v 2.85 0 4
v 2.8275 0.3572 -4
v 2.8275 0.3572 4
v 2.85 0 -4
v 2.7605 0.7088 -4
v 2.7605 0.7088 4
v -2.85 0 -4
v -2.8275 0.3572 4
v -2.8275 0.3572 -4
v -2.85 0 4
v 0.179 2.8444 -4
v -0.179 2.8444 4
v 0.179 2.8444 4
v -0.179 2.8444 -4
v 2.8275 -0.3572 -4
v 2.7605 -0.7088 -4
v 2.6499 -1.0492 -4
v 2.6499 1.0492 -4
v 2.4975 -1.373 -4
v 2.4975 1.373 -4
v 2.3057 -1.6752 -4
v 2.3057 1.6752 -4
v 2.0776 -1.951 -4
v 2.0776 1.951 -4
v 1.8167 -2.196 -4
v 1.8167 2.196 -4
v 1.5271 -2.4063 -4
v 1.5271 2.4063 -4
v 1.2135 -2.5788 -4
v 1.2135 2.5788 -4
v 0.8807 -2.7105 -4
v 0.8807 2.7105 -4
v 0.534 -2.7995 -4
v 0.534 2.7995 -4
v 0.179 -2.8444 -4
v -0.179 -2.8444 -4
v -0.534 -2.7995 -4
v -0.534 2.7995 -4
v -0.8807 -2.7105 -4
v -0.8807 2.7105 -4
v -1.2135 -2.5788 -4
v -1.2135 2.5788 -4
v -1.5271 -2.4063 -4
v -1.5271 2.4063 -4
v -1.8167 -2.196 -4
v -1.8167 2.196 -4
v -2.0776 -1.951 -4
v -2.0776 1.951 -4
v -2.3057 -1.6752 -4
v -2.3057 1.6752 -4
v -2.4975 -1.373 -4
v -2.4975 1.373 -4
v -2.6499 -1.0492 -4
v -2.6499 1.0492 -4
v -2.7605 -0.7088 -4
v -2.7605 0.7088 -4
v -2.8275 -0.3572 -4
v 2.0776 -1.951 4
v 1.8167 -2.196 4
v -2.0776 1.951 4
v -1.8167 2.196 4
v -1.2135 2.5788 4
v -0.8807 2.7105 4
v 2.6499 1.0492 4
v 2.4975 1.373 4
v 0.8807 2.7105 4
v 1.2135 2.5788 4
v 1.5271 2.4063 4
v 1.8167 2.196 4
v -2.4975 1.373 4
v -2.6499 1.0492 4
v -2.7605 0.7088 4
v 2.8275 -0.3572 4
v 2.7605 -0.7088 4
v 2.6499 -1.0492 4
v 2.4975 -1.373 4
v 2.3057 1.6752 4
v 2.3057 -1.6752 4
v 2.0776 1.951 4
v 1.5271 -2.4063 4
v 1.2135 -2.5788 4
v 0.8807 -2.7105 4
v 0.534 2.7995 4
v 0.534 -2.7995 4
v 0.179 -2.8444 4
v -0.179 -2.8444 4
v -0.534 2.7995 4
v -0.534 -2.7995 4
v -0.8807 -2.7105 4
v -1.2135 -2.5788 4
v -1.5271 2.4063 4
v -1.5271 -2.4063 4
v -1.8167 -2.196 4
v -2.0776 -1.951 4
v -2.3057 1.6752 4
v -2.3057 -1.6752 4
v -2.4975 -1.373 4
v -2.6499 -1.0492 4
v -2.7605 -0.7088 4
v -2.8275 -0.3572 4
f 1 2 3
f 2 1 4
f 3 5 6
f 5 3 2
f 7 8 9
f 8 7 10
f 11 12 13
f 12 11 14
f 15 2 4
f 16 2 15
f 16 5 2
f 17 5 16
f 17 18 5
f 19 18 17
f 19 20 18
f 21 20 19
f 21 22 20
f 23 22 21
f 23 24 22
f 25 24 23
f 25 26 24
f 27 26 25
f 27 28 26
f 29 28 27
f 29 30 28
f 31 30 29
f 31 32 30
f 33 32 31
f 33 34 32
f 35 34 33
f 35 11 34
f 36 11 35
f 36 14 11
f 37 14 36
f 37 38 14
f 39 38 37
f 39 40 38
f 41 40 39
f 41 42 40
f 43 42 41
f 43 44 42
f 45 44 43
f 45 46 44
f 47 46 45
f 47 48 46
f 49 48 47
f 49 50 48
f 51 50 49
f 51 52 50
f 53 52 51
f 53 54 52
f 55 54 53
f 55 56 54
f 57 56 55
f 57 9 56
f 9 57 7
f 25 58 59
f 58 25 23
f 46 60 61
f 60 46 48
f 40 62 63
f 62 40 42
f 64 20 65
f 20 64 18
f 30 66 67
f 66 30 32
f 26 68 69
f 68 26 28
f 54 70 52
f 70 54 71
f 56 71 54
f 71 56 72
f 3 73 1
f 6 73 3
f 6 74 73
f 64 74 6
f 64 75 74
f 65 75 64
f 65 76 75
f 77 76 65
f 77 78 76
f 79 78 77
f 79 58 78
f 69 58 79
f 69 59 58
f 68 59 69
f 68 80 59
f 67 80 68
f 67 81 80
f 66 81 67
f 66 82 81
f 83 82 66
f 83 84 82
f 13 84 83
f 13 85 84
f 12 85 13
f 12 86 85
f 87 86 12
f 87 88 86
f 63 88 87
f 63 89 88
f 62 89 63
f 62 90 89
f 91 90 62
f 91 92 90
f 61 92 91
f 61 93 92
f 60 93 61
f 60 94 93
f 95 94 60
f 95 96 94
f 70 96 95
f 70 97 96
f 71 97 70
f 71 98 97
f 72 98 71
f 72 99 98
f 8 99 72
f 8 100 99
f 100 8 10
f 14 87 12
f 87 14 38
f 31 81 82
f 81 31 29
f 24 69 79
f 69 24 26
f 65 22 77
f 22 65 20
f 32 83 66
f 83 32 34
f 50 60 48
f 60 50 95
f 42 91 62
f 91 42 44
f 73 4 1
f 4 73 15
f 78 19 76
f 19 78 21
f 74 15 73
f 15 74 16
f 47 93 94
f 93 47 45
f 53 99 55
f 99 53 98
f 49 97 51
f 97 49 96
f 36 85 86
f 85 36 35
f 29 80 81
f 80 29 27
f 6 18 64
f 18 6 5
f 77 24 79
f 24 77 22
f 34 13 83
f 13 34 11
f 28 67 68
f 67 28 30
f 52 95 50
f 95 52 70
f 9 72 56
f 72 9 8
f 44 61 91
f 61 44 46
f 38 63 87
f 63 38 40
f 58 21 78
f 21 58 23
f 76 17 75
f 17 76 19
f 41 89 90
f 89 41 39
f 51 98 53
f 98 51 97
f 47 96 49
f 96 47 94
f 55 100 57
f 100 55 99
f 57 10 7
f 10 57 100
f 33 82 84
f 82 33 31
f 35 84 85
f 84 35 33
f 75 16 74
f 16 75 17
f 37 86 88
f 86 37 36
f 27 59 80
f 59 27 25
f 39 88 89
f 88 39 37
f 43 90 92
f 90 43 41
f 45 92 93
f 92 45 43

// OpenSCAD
$fn = 50;


difference() {
	union() {
		translate(v = [0, 0, -4.0000000000]) {
			cylinder(h = 8, r = 2.8500000000);
		}
	}
	union() {
		translate(v = [0, 0, -100.0000000000]) {
			cylinder(h = 200, r = 0);
		}
	}
}
